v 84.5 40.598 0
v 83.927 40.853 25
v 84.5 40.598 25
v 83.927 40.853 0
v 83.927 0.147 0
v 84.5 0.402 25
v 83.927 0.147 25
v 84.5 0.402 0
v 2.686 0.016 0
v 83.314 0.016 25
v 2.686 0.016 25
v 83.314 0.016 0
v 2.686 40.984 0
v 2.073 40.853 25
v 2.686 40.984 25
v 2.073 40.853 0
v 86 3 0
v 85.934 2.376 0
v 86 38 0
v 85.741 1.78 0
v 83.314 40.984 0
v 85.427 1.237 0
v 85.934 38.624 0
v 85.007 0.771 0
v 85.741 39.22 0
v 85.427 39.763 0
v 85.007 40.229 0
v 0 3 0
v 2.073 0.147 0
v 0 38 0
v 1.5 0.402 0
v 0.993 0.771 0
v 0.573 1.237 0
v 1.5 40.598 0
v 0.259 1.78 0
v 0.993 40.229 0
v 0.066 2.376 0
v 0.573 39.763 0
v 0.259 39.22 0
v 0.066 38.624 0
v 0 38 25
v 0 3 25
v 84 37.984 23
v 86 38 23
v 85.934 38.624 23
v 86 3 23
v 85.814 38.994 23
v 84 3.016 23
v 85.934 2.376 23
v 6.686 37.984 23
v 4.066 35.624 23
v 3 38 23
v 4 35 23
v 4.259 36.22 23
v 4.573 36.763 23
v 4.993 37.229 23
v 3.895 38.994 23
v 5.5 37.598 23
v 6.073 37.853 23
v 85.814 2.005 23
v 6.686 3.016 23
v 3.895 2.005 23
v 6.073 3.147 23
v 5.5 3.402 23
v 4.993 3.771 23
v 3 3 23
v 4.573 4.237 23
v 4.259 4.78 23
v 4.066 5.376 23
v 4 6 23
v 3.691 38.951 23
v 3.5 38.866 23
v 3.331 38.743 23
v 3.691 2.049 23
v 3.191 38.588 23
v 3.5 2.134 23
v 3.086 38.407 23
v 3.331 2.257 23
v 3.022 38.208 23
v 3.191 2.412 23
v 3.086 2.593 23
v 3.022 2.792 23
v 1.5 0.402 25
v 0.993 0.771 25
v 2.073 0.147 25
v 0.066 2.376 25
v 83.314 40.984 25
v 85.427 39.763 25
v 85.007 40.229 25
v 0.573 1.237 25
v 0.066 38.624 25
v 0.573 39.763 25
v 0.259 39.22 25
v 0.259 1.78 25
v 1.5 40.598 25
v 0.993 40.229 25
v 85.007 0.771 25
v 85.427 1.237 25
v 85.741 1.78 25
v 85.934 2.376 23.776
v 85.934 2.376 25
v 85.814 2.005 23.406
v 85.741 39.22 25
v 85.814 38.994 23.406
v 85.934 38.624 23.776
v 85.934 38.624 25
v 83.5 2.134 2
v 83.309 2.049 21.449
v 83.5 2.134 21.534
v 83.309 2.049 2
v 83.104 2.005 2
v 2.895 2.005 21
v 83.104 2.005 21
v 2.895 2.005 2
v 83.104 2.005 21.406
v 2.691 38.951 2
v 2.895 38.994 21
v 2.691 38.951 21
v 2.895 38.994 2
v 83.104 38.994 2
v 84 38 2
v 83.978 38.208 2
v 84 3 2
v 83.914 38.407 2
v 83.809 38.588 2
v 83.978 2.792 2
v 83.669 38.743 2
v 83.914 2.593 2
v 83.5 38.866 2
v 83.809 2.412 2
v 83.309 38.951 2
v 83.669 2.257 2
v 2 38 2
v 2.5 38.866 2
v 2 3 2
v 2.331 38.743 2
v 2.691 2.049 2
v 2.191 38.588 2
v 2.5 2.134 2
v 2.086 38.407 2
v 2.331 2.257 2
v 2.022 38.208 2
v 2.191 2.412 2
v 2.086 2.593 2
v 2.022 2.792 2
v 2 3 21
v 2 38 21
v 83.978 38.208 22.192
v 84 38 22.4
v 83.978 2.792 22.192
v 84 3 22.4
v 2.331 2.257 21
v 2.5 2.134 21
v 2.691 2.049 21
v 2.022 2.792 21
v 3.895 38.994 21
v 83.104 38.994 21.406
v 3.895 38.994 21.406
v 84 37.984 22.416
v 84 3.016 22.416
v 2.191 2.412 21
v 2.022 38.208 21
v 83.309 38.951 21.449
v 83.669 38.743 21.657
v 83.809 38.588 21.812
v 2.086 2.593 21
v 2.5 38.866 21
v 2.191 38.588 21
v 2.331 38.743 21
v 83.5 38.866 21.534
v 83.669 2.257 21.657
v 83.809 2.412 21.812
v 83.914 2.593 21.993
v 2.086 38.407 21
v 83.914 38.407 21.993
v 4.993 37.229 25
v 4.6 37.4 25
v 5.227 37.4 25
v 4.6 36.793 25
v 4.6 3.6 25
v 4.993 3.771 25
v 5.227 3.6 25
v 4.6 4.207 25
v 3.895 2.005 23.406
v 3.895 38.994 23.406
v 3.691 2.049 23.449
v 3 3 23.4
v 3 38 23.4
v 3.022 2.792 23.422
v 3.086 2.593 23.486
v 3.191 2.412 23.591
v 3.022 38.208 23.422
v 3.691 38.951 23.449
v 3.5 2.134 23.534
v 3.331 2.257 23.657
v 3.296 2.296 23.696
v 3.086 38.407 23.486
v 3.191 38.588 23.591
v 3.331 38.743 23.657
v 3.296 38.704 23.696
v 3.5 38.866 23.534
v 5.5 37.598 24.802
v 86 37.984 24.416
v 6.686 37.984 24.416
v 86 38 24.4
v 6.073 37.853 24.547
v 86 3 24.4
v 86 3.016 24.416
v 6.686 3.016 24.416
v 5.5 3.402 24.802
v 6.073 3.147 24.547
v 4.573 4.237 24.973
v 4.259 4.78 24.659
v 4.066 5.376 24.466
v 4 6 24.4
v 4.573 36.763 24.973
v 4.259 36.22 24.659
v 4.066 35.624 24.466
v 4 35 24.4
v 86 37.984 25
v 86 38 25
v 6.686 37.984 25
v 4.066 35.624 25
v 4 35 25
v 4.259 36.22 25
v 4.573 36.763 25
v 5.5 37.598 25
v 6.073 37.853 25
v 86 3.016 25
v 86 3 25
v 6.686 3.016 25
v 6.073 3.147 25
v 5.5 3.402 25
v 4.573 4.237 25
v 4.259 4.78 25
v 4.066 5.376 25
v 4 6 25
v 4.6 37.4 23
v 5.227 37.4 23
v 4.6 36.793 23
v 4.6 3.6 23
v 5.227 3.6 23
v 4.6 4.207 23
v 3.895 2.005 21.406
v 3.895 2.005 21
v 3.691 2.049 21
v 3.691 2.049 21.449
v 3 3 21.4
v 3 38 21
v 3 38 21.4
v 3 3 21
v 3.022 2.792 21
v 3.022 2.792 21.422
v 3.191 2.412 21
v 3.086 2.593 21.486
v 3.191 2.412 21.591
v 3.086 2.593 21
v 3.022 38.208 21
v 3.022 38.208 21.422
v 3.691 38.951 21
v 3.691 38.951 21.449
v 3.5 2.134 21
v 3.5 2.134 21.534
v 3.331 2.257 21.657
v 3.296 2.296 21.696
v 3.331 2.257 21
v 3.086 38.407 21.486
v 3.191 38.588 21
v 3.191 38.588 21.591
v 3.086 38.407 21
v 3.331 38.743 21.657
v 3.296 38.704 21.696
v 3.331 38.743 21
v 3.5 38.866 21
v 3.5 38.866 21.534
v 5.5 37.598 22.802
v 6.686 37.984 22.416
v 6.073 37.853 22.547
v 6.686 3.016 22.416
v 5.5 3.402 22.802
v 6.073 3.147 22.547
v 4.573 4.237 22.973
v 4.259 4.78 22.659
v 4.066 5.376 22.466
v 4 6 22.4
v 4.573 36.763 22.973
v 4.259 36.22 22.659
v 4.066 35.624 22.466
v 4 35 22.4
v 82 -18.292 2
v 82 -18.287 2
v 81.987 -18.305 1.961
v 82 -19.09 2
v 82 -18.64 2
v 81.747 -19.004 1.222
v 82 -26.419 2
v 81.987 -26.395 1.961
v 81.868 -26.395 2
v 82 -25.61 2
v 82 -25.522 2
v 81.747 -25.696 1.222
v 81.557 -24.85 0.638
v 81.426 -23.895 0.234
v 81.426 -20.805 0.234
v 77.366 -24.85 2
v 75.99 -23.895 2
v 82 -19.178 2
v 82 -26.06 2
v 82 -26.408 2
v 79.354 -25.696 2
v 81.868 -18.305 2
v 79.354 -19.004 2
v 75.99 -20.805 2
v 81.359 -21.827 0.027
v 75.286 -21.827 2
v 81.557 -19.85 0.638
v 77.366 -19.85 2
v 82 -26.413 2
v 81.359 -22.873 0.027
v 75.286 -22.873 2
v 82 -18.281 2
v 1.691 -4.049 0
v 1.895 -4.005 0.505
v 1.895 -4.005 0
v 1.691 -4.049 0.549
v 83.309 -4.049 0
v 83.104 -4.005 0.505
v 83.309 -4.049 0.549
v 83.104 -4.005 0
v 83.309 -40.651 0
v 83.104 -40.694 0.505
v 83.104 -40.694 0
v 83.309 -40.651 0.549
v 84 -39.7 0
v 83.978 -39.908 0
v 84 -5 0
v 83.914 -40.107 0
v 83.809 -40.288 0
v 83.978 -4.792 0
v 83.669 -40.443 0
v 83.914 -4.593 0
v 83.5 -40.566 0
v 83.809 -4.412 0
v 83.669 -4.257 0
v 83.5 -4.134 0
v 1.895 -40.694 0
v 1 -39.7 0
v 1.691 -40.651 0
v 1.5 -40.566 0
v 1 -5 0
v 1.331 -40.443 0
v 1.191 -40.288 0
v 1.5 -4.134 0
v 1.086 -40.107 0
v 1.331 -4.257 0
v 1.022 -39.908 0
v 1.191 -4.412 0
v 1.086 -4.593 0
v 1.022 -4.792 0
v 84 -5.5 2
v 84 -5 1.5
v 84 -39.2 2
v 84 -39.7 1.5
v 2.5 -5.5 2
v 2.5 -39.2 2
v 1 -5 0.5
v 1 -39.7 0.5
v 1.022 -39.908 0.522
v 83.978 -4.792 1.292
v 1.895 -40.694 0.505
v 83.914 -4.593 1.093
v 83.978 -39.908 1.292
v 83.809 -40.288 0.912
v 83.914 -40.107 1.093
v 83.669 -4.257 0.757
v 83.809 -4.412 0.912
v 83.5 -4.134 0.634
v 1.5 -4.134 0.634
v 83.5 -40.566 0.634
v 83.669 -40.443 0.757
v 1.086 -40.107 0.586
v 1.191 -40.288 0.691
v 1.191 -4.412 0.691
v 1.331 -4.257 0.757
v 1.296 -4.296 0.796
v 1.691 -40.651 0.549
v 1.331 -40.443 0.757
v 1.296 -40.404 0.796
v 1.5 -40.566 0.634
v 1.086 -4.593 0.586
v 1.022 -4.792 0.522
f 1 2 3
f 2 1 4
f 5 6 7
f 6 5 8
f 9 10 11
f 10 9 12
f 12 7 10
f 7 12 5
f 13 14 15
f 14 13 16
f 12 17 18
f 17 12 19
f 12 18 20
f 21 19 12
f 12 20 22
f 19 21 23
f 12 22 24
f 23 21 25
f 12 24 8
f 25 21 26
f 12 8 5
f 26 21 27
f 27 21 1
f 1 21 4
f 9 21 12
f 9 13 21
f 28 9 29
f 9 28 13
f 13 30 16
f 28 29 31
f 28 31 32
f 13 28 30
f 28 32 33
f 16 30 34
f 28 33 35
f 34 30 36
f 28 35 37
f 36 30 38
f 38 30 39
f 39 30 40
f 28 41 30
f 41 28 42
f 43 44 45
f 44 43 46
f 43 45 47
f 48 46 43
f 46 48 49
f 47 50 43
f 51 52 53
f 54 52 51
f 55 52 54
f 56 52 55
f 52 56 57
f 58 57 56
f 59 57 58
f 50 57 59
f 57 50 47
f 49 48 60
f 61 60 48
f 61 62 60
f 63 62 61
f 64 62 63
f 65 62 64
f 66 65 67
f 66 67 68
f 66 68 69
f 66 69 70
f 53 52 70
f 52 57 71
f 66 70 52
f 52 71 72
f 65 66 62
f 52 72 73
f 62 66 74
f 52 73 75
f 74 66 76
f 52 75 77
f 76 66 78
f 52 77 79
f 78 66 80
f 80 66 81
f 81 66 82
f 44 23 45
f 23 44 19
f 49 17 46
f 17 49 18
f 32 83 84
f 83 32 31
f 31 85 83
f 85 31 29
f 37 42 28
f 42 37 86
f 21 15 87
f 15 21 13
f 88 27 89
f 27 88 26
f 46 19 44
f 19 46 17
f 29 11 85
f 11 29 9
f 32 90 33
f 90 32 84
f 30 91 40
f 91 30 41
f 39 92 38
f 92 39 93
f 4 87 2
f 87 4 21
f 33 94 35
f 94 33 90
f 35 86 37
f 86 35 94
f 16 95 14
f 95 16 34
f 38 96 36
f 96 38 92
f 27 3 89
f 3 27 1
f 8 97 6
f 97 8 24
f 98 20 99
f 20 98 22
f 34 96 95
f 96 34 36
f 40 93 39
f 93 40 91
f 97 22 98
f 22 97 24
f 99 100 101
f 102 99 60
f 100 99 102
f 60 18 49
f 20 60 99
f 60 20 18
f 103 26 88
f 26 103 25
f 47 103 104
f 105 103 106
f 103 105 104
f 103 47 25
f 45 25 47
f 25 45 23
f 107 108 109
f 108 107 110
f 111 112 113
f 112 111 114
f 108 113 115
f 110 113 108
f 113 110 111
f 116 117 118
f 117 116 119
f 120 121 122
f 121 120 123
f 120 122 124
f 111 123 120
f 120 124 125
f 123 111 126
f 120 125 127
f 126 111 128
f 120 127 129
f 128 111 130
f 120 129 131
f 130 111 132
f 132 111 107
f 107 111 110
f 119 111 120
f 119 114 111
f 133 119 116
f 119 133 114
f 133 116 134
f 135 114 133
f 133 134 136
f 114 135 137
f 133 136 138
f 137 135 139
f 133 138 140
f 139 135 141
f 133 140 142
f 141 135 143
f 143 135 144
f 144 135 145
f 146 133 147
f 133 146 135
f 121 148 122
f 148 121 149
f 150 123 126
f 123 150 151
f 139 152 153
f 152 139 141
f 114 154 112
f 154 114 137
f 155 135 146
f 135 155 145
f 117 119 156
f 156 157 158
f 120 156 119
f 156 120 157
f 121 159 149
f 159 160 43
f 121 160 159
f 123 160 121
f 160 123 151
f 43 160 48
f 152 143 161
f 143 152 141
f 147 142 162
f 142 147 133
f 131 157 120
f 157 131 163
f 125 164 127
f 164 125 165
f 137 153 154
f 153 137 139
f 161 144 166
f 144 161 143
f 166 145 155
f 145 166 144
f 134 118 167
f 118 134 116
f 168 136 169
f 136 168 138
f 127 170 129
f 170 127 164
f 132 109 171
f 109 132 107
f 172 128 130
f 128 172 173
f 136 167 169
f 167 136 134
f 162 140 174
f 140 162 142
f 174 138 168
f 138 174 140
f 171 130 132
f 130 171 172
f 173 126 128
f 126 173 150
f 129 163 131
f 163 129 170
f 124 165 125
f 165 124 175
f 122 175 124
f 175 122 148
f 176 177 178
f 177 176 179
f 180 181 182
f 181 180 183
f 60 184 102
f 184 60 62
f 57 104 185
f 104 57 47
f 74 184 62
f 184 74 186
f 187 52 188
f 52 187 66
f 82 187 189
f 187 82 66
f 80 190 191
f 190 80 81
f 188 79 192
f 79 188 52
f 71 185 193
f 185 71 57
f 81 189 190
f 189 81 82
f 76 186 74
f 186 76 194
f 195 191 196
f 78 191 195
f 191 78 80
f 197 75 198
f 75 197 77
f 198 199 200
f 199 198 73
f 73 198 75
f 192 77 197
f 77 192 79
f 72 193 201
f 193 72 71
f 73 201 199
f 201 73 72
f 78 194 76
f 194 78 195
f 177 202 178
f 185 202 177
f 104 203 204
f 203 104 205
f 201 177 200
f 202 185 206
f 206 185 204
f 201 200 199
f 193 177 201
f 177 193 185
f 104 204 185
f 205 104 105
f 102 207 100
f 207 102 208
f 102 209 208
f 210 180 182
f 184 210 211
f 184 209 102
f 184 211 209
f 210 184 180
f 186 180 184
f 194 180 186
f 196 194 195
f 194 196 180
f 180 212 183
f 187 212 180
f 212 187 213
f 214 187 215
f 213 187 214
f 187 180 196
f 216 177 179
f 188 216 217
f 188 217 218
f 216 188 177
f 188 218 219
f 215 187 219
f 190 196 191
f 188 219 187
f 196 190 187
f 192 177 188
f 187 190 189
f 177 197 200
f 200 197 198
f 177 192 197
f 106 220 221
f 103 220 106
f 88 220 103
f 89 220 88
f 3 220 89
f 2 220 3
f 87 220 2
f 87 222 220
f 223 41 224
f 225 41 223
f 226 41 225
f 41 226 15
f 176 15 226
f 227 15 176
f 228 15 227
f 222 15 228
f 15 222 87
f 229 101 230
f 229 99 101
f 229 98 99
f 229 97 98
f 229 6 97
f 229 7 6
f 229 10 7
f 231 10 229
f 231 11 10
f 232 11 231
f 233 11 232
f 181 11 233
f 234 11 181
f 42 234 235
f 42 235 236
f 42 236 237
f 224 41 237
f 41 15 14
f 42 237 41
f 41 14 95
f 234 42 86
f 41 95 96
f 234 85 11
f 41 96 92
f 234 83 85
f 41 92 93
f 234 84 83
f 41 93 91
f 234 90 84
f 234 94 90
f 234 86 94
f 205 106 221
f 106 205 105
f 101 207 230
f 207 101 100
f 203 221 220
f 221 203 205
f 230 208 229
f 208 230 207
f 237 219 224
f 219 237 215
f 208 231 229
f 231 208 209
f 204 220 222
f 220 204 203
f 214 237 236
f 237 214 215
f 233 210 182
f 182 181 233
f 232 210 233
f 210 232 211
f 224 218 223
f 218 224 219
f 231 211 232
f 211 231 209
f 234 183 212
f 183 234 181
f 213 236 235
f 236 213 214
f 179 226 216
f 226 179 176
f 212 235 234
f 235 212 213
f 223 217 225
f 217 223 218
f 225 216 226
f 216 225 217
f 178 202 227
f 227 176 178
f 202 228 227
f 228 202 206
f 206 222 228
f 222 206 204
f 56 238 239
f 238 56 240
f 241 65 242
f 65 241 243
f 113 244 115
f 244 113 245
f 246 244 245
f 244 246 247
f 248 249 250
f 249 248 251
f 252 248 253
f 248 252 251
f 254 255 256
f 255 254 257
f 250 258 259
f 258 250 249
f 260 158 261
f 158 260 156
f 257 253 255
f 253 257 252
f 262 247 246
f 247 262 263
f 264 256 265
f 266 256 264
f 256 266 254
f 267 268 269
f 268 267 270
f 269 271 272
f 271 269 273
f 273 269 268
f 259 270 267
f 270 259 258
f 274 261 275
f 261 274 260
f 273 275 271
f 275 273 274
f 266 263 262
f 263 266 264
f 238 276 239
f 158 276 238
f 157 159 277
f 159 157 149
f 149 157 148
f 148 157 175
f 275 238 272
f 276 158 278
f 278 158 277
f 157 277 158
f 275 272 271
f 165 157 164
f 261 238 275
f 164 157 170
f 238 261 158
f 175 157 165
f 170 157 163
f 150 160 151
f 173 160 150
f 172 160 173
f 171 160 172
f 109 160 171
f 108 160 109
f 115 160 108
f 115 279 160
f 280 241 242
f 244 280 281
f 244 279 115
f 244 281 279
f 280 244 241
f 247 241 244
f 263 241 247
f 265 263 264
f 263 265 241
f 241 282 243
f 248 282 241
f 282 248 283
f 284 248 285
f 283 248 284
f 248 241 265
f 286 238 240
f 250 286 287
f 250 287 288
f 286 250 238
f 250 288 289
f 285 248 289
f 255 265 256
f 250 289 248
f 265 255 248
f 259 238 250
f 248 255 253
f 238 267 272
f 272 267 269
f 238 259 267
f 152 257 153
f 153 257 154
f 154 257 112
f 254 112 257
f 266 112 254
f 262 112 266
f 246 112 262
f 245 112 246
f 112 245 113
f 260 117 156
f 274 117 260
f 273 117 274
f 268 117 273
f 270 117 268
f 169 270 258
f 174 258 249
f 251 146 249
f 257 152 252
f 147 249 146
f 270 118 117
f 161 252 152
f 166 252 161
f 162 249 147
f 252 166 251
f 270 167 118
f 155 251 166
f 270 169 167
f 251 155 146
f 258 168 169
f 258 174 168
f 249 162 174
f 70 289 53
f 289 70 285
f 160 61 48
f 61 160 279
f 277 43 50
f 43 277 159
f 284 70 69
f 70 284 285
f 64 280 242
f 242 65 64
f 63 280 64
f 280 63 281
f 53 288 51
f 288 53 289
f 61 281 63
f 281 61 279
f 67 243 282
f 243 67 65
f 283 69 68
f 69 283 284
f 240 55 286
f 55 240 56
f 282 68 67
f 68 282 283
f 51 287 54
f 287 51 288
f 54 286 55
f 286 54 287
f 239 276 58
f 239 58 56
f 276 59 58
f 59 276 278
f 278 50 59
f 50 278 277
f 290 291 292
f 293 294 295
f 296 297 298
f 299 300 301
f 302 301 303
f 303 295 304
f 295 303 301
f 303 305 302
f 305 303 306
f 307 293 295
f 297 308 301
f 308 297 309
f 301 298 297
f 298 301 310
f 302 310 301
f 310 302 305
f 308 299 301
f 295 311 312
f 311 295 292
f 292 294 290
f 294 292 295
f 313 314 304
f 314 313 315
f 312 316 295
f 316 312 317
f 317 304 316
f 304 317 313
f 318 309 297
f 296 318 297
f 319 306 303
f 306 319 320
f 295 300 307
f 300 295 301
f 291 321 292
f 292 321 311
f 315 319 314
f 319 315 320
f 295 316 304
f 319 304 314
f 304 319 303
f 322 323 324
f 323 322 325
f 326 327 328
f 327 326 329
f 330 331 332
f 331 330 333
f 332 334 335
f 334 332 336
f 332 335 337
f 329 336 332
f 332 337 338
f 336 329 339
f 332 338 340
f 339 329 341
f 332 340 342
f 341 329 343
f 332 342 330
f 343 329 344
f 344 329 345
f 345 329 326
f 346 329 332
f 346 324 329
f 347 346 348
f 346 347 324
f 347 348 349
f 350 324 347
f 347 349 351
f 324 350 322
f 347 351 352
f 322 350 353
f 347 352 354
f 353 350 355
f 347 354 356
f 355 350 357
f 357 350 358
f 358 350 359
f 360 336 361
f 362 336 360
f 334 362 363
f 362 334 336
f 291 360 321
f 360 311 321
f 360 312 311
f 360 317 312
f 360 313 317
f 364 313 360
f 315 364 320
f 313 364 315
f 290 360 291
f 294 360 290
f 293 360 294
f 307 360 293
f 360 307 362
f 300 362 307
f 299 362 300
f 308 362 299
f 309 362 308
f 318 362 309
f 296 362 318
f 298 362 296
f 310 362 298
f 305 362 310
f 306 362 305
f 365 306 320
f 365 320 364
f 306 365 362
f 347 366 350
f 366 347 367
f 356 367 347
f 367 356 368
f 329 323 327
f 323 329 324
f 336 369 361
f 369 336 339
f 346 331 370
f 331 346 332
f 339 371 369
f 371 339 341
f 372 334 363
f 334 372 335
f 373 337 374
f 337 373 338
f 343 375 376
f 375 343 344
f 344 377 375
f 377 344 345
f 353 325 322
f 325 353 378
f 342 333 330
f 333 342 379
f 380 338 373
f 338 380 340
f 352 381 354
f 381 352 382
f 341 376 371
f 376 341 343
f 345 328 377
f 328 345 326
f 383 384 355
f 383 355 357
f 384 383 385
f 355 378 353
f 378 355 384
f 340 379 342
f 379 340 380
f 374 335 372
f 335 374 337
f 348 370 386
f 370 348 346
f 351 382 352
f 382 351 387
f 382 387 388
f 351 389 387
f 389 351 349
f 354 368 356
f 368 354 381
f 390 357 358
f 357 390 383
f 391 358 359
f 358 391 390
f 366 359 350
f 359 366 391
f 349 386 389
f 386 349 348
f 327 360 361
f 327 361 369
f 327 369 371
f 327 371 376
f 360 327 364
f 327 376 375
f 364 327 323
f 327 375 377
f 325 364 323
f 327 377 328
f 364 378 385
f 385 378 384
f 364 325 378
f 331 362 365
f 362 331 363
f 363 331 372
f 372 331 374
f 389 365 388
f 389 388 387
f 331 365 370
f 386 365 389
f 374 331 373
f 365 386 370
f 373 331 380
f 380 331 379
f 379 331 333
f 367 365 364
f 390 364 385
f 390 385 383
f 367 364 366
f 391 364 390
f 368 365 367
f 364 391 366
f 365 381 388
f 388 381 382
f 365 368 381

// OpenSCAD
itemsShown="both"; // [both,box,lid]
boxLength=86;
boxWidth=41;
boxHeight=25;
cornerRadius=3;
wallThickness=2;
bottomThickness=2;
lidThickness=2;
lidClearance=0.3;
lidEdgeThickness=0.5;
// Notch in the lid
withNotch=true;//true;//[true:false]

/* [Global] */
if (itemsShown=="box") showBox();
if (itemsShown=="lid") showLid();
if (itemsShown=="both"){showBox();showLid();}

module showLid(){
	translate ([0, -2*wallThickness, 0]) 
	roundBoxLid(l=boxLength-wallThickness,
				w=boxWidth-2*wallThickness-lidClearance,
				h=lidThickness,
				et=lidEdgeThickness,
				r=cornerRadius-wallThickness,
				notch=withNotch);
}

module showBox(){
	round_box(l=boxLength,
			  w=boxWidth,
			  h=boxHeight,
			  bt=bottomThickness,
			  wt=wallThickness,
			  lt=lidThickness,
			  r=cornerRadius);
}

module round_box(l=40,w=30,h=30,bt=2,wt=2,lt=2,r=5,){
	difference() { 
		round_cube(l=l,w=w,h=h-lt,r=r);
		translate ([wt, wt, bt]) 
		round_cube(l=l-wt*2,w=w-wt*2,h=h,r=r-wt);
	}
	//use two box rims. one to make a slope to support the lid
	roundBoxRim();
	translate ([0, 0, -wt]) roundBoxRim();
}

module roundBoxRim(l=boxLength,
				   w=boxWidth,
				   h=boxHeight,
				   et=lidEdgeThickness,
				   r=cornerRadius,
				   wt=wallThickness,
				   lt=lidThickness){
	difference() { 
		translate ([0, 0, h-lt]) 
		round_cube(l=l,w=w,h=lt,r=r);
		translate ([wt+lt,wt+lt-et*2,h-lt-0.1]) 
		round_cube(l=l*2,w=w-2*(wt+lt)+4*et,h=lt+0.2,r=r-wt+lt);

		//subtract out a lid to make the ledge
		translate ([wt, w-wt, h-lt-0.1])
		roundBoxLid(l=l*2,w=w-2*wt,h=lt+0.1,wt=wt,t=lt,et=0.5,r=r-wt,notch=false);
	}
}

module roundBoxLid(l=40,w=30,h=3,wt=2,t=2,et=0.5,r=5,notch=true){
	translate ([l, 0, 0]) 
	rotate (a = [0, 0, 180]) 
	difference(){
		round_cube(l=l-1,w=w,h=h,t=t,r=r);

		translate ([-1, 0, et]) rotate (a = [45, 0, 0])  cube (size = [l+2, h*2, h*2]); 
		translate ([-1, w, et]) rotate (a = [45, 0, 0])  cube (size = [l+2, h*2, h*2]); 
		translate ([l-1, -1, et]) rotate (a = [45, 0, 90]) cube (size = [w+2, h*2, h*2]); 
		if (notch==true){
			translate([2,w/2,h+0.001]) thumbNotch(10/2,72,t);
		}
	}
}

module thumbNotch(
	thumbR=12/2,
	angle=72,
	notchHeight=2){

	size=10*thumbR;

	rotate([0,0,90])
	difference(){
		translate([0,
					(thumbR*sin(angle)-notchHeight)/tan(angle),
					 thumbR*sin(angle)-notchHeight])
		rotate([angle,0,0])
		cylinder(r=thumbR,h=size,$fn=30);

		translate([-size,-size,0])
		cube(size*2);
	}
}

module round_cube(l=40,w=30,h=20,r=5,$fn=30){
	hull(){ 
		translate ([r, r, 0]) cylinder (h = h, r=r);
		translate ([r, w-r, 0]) cylinder (h = h, r=r);
		translate ([l-r,w-r, 0]) cylinder (h = h, r=r);
		translate ([l-r, r, 0]) cylinder (h = h, r=r);
	}
}
